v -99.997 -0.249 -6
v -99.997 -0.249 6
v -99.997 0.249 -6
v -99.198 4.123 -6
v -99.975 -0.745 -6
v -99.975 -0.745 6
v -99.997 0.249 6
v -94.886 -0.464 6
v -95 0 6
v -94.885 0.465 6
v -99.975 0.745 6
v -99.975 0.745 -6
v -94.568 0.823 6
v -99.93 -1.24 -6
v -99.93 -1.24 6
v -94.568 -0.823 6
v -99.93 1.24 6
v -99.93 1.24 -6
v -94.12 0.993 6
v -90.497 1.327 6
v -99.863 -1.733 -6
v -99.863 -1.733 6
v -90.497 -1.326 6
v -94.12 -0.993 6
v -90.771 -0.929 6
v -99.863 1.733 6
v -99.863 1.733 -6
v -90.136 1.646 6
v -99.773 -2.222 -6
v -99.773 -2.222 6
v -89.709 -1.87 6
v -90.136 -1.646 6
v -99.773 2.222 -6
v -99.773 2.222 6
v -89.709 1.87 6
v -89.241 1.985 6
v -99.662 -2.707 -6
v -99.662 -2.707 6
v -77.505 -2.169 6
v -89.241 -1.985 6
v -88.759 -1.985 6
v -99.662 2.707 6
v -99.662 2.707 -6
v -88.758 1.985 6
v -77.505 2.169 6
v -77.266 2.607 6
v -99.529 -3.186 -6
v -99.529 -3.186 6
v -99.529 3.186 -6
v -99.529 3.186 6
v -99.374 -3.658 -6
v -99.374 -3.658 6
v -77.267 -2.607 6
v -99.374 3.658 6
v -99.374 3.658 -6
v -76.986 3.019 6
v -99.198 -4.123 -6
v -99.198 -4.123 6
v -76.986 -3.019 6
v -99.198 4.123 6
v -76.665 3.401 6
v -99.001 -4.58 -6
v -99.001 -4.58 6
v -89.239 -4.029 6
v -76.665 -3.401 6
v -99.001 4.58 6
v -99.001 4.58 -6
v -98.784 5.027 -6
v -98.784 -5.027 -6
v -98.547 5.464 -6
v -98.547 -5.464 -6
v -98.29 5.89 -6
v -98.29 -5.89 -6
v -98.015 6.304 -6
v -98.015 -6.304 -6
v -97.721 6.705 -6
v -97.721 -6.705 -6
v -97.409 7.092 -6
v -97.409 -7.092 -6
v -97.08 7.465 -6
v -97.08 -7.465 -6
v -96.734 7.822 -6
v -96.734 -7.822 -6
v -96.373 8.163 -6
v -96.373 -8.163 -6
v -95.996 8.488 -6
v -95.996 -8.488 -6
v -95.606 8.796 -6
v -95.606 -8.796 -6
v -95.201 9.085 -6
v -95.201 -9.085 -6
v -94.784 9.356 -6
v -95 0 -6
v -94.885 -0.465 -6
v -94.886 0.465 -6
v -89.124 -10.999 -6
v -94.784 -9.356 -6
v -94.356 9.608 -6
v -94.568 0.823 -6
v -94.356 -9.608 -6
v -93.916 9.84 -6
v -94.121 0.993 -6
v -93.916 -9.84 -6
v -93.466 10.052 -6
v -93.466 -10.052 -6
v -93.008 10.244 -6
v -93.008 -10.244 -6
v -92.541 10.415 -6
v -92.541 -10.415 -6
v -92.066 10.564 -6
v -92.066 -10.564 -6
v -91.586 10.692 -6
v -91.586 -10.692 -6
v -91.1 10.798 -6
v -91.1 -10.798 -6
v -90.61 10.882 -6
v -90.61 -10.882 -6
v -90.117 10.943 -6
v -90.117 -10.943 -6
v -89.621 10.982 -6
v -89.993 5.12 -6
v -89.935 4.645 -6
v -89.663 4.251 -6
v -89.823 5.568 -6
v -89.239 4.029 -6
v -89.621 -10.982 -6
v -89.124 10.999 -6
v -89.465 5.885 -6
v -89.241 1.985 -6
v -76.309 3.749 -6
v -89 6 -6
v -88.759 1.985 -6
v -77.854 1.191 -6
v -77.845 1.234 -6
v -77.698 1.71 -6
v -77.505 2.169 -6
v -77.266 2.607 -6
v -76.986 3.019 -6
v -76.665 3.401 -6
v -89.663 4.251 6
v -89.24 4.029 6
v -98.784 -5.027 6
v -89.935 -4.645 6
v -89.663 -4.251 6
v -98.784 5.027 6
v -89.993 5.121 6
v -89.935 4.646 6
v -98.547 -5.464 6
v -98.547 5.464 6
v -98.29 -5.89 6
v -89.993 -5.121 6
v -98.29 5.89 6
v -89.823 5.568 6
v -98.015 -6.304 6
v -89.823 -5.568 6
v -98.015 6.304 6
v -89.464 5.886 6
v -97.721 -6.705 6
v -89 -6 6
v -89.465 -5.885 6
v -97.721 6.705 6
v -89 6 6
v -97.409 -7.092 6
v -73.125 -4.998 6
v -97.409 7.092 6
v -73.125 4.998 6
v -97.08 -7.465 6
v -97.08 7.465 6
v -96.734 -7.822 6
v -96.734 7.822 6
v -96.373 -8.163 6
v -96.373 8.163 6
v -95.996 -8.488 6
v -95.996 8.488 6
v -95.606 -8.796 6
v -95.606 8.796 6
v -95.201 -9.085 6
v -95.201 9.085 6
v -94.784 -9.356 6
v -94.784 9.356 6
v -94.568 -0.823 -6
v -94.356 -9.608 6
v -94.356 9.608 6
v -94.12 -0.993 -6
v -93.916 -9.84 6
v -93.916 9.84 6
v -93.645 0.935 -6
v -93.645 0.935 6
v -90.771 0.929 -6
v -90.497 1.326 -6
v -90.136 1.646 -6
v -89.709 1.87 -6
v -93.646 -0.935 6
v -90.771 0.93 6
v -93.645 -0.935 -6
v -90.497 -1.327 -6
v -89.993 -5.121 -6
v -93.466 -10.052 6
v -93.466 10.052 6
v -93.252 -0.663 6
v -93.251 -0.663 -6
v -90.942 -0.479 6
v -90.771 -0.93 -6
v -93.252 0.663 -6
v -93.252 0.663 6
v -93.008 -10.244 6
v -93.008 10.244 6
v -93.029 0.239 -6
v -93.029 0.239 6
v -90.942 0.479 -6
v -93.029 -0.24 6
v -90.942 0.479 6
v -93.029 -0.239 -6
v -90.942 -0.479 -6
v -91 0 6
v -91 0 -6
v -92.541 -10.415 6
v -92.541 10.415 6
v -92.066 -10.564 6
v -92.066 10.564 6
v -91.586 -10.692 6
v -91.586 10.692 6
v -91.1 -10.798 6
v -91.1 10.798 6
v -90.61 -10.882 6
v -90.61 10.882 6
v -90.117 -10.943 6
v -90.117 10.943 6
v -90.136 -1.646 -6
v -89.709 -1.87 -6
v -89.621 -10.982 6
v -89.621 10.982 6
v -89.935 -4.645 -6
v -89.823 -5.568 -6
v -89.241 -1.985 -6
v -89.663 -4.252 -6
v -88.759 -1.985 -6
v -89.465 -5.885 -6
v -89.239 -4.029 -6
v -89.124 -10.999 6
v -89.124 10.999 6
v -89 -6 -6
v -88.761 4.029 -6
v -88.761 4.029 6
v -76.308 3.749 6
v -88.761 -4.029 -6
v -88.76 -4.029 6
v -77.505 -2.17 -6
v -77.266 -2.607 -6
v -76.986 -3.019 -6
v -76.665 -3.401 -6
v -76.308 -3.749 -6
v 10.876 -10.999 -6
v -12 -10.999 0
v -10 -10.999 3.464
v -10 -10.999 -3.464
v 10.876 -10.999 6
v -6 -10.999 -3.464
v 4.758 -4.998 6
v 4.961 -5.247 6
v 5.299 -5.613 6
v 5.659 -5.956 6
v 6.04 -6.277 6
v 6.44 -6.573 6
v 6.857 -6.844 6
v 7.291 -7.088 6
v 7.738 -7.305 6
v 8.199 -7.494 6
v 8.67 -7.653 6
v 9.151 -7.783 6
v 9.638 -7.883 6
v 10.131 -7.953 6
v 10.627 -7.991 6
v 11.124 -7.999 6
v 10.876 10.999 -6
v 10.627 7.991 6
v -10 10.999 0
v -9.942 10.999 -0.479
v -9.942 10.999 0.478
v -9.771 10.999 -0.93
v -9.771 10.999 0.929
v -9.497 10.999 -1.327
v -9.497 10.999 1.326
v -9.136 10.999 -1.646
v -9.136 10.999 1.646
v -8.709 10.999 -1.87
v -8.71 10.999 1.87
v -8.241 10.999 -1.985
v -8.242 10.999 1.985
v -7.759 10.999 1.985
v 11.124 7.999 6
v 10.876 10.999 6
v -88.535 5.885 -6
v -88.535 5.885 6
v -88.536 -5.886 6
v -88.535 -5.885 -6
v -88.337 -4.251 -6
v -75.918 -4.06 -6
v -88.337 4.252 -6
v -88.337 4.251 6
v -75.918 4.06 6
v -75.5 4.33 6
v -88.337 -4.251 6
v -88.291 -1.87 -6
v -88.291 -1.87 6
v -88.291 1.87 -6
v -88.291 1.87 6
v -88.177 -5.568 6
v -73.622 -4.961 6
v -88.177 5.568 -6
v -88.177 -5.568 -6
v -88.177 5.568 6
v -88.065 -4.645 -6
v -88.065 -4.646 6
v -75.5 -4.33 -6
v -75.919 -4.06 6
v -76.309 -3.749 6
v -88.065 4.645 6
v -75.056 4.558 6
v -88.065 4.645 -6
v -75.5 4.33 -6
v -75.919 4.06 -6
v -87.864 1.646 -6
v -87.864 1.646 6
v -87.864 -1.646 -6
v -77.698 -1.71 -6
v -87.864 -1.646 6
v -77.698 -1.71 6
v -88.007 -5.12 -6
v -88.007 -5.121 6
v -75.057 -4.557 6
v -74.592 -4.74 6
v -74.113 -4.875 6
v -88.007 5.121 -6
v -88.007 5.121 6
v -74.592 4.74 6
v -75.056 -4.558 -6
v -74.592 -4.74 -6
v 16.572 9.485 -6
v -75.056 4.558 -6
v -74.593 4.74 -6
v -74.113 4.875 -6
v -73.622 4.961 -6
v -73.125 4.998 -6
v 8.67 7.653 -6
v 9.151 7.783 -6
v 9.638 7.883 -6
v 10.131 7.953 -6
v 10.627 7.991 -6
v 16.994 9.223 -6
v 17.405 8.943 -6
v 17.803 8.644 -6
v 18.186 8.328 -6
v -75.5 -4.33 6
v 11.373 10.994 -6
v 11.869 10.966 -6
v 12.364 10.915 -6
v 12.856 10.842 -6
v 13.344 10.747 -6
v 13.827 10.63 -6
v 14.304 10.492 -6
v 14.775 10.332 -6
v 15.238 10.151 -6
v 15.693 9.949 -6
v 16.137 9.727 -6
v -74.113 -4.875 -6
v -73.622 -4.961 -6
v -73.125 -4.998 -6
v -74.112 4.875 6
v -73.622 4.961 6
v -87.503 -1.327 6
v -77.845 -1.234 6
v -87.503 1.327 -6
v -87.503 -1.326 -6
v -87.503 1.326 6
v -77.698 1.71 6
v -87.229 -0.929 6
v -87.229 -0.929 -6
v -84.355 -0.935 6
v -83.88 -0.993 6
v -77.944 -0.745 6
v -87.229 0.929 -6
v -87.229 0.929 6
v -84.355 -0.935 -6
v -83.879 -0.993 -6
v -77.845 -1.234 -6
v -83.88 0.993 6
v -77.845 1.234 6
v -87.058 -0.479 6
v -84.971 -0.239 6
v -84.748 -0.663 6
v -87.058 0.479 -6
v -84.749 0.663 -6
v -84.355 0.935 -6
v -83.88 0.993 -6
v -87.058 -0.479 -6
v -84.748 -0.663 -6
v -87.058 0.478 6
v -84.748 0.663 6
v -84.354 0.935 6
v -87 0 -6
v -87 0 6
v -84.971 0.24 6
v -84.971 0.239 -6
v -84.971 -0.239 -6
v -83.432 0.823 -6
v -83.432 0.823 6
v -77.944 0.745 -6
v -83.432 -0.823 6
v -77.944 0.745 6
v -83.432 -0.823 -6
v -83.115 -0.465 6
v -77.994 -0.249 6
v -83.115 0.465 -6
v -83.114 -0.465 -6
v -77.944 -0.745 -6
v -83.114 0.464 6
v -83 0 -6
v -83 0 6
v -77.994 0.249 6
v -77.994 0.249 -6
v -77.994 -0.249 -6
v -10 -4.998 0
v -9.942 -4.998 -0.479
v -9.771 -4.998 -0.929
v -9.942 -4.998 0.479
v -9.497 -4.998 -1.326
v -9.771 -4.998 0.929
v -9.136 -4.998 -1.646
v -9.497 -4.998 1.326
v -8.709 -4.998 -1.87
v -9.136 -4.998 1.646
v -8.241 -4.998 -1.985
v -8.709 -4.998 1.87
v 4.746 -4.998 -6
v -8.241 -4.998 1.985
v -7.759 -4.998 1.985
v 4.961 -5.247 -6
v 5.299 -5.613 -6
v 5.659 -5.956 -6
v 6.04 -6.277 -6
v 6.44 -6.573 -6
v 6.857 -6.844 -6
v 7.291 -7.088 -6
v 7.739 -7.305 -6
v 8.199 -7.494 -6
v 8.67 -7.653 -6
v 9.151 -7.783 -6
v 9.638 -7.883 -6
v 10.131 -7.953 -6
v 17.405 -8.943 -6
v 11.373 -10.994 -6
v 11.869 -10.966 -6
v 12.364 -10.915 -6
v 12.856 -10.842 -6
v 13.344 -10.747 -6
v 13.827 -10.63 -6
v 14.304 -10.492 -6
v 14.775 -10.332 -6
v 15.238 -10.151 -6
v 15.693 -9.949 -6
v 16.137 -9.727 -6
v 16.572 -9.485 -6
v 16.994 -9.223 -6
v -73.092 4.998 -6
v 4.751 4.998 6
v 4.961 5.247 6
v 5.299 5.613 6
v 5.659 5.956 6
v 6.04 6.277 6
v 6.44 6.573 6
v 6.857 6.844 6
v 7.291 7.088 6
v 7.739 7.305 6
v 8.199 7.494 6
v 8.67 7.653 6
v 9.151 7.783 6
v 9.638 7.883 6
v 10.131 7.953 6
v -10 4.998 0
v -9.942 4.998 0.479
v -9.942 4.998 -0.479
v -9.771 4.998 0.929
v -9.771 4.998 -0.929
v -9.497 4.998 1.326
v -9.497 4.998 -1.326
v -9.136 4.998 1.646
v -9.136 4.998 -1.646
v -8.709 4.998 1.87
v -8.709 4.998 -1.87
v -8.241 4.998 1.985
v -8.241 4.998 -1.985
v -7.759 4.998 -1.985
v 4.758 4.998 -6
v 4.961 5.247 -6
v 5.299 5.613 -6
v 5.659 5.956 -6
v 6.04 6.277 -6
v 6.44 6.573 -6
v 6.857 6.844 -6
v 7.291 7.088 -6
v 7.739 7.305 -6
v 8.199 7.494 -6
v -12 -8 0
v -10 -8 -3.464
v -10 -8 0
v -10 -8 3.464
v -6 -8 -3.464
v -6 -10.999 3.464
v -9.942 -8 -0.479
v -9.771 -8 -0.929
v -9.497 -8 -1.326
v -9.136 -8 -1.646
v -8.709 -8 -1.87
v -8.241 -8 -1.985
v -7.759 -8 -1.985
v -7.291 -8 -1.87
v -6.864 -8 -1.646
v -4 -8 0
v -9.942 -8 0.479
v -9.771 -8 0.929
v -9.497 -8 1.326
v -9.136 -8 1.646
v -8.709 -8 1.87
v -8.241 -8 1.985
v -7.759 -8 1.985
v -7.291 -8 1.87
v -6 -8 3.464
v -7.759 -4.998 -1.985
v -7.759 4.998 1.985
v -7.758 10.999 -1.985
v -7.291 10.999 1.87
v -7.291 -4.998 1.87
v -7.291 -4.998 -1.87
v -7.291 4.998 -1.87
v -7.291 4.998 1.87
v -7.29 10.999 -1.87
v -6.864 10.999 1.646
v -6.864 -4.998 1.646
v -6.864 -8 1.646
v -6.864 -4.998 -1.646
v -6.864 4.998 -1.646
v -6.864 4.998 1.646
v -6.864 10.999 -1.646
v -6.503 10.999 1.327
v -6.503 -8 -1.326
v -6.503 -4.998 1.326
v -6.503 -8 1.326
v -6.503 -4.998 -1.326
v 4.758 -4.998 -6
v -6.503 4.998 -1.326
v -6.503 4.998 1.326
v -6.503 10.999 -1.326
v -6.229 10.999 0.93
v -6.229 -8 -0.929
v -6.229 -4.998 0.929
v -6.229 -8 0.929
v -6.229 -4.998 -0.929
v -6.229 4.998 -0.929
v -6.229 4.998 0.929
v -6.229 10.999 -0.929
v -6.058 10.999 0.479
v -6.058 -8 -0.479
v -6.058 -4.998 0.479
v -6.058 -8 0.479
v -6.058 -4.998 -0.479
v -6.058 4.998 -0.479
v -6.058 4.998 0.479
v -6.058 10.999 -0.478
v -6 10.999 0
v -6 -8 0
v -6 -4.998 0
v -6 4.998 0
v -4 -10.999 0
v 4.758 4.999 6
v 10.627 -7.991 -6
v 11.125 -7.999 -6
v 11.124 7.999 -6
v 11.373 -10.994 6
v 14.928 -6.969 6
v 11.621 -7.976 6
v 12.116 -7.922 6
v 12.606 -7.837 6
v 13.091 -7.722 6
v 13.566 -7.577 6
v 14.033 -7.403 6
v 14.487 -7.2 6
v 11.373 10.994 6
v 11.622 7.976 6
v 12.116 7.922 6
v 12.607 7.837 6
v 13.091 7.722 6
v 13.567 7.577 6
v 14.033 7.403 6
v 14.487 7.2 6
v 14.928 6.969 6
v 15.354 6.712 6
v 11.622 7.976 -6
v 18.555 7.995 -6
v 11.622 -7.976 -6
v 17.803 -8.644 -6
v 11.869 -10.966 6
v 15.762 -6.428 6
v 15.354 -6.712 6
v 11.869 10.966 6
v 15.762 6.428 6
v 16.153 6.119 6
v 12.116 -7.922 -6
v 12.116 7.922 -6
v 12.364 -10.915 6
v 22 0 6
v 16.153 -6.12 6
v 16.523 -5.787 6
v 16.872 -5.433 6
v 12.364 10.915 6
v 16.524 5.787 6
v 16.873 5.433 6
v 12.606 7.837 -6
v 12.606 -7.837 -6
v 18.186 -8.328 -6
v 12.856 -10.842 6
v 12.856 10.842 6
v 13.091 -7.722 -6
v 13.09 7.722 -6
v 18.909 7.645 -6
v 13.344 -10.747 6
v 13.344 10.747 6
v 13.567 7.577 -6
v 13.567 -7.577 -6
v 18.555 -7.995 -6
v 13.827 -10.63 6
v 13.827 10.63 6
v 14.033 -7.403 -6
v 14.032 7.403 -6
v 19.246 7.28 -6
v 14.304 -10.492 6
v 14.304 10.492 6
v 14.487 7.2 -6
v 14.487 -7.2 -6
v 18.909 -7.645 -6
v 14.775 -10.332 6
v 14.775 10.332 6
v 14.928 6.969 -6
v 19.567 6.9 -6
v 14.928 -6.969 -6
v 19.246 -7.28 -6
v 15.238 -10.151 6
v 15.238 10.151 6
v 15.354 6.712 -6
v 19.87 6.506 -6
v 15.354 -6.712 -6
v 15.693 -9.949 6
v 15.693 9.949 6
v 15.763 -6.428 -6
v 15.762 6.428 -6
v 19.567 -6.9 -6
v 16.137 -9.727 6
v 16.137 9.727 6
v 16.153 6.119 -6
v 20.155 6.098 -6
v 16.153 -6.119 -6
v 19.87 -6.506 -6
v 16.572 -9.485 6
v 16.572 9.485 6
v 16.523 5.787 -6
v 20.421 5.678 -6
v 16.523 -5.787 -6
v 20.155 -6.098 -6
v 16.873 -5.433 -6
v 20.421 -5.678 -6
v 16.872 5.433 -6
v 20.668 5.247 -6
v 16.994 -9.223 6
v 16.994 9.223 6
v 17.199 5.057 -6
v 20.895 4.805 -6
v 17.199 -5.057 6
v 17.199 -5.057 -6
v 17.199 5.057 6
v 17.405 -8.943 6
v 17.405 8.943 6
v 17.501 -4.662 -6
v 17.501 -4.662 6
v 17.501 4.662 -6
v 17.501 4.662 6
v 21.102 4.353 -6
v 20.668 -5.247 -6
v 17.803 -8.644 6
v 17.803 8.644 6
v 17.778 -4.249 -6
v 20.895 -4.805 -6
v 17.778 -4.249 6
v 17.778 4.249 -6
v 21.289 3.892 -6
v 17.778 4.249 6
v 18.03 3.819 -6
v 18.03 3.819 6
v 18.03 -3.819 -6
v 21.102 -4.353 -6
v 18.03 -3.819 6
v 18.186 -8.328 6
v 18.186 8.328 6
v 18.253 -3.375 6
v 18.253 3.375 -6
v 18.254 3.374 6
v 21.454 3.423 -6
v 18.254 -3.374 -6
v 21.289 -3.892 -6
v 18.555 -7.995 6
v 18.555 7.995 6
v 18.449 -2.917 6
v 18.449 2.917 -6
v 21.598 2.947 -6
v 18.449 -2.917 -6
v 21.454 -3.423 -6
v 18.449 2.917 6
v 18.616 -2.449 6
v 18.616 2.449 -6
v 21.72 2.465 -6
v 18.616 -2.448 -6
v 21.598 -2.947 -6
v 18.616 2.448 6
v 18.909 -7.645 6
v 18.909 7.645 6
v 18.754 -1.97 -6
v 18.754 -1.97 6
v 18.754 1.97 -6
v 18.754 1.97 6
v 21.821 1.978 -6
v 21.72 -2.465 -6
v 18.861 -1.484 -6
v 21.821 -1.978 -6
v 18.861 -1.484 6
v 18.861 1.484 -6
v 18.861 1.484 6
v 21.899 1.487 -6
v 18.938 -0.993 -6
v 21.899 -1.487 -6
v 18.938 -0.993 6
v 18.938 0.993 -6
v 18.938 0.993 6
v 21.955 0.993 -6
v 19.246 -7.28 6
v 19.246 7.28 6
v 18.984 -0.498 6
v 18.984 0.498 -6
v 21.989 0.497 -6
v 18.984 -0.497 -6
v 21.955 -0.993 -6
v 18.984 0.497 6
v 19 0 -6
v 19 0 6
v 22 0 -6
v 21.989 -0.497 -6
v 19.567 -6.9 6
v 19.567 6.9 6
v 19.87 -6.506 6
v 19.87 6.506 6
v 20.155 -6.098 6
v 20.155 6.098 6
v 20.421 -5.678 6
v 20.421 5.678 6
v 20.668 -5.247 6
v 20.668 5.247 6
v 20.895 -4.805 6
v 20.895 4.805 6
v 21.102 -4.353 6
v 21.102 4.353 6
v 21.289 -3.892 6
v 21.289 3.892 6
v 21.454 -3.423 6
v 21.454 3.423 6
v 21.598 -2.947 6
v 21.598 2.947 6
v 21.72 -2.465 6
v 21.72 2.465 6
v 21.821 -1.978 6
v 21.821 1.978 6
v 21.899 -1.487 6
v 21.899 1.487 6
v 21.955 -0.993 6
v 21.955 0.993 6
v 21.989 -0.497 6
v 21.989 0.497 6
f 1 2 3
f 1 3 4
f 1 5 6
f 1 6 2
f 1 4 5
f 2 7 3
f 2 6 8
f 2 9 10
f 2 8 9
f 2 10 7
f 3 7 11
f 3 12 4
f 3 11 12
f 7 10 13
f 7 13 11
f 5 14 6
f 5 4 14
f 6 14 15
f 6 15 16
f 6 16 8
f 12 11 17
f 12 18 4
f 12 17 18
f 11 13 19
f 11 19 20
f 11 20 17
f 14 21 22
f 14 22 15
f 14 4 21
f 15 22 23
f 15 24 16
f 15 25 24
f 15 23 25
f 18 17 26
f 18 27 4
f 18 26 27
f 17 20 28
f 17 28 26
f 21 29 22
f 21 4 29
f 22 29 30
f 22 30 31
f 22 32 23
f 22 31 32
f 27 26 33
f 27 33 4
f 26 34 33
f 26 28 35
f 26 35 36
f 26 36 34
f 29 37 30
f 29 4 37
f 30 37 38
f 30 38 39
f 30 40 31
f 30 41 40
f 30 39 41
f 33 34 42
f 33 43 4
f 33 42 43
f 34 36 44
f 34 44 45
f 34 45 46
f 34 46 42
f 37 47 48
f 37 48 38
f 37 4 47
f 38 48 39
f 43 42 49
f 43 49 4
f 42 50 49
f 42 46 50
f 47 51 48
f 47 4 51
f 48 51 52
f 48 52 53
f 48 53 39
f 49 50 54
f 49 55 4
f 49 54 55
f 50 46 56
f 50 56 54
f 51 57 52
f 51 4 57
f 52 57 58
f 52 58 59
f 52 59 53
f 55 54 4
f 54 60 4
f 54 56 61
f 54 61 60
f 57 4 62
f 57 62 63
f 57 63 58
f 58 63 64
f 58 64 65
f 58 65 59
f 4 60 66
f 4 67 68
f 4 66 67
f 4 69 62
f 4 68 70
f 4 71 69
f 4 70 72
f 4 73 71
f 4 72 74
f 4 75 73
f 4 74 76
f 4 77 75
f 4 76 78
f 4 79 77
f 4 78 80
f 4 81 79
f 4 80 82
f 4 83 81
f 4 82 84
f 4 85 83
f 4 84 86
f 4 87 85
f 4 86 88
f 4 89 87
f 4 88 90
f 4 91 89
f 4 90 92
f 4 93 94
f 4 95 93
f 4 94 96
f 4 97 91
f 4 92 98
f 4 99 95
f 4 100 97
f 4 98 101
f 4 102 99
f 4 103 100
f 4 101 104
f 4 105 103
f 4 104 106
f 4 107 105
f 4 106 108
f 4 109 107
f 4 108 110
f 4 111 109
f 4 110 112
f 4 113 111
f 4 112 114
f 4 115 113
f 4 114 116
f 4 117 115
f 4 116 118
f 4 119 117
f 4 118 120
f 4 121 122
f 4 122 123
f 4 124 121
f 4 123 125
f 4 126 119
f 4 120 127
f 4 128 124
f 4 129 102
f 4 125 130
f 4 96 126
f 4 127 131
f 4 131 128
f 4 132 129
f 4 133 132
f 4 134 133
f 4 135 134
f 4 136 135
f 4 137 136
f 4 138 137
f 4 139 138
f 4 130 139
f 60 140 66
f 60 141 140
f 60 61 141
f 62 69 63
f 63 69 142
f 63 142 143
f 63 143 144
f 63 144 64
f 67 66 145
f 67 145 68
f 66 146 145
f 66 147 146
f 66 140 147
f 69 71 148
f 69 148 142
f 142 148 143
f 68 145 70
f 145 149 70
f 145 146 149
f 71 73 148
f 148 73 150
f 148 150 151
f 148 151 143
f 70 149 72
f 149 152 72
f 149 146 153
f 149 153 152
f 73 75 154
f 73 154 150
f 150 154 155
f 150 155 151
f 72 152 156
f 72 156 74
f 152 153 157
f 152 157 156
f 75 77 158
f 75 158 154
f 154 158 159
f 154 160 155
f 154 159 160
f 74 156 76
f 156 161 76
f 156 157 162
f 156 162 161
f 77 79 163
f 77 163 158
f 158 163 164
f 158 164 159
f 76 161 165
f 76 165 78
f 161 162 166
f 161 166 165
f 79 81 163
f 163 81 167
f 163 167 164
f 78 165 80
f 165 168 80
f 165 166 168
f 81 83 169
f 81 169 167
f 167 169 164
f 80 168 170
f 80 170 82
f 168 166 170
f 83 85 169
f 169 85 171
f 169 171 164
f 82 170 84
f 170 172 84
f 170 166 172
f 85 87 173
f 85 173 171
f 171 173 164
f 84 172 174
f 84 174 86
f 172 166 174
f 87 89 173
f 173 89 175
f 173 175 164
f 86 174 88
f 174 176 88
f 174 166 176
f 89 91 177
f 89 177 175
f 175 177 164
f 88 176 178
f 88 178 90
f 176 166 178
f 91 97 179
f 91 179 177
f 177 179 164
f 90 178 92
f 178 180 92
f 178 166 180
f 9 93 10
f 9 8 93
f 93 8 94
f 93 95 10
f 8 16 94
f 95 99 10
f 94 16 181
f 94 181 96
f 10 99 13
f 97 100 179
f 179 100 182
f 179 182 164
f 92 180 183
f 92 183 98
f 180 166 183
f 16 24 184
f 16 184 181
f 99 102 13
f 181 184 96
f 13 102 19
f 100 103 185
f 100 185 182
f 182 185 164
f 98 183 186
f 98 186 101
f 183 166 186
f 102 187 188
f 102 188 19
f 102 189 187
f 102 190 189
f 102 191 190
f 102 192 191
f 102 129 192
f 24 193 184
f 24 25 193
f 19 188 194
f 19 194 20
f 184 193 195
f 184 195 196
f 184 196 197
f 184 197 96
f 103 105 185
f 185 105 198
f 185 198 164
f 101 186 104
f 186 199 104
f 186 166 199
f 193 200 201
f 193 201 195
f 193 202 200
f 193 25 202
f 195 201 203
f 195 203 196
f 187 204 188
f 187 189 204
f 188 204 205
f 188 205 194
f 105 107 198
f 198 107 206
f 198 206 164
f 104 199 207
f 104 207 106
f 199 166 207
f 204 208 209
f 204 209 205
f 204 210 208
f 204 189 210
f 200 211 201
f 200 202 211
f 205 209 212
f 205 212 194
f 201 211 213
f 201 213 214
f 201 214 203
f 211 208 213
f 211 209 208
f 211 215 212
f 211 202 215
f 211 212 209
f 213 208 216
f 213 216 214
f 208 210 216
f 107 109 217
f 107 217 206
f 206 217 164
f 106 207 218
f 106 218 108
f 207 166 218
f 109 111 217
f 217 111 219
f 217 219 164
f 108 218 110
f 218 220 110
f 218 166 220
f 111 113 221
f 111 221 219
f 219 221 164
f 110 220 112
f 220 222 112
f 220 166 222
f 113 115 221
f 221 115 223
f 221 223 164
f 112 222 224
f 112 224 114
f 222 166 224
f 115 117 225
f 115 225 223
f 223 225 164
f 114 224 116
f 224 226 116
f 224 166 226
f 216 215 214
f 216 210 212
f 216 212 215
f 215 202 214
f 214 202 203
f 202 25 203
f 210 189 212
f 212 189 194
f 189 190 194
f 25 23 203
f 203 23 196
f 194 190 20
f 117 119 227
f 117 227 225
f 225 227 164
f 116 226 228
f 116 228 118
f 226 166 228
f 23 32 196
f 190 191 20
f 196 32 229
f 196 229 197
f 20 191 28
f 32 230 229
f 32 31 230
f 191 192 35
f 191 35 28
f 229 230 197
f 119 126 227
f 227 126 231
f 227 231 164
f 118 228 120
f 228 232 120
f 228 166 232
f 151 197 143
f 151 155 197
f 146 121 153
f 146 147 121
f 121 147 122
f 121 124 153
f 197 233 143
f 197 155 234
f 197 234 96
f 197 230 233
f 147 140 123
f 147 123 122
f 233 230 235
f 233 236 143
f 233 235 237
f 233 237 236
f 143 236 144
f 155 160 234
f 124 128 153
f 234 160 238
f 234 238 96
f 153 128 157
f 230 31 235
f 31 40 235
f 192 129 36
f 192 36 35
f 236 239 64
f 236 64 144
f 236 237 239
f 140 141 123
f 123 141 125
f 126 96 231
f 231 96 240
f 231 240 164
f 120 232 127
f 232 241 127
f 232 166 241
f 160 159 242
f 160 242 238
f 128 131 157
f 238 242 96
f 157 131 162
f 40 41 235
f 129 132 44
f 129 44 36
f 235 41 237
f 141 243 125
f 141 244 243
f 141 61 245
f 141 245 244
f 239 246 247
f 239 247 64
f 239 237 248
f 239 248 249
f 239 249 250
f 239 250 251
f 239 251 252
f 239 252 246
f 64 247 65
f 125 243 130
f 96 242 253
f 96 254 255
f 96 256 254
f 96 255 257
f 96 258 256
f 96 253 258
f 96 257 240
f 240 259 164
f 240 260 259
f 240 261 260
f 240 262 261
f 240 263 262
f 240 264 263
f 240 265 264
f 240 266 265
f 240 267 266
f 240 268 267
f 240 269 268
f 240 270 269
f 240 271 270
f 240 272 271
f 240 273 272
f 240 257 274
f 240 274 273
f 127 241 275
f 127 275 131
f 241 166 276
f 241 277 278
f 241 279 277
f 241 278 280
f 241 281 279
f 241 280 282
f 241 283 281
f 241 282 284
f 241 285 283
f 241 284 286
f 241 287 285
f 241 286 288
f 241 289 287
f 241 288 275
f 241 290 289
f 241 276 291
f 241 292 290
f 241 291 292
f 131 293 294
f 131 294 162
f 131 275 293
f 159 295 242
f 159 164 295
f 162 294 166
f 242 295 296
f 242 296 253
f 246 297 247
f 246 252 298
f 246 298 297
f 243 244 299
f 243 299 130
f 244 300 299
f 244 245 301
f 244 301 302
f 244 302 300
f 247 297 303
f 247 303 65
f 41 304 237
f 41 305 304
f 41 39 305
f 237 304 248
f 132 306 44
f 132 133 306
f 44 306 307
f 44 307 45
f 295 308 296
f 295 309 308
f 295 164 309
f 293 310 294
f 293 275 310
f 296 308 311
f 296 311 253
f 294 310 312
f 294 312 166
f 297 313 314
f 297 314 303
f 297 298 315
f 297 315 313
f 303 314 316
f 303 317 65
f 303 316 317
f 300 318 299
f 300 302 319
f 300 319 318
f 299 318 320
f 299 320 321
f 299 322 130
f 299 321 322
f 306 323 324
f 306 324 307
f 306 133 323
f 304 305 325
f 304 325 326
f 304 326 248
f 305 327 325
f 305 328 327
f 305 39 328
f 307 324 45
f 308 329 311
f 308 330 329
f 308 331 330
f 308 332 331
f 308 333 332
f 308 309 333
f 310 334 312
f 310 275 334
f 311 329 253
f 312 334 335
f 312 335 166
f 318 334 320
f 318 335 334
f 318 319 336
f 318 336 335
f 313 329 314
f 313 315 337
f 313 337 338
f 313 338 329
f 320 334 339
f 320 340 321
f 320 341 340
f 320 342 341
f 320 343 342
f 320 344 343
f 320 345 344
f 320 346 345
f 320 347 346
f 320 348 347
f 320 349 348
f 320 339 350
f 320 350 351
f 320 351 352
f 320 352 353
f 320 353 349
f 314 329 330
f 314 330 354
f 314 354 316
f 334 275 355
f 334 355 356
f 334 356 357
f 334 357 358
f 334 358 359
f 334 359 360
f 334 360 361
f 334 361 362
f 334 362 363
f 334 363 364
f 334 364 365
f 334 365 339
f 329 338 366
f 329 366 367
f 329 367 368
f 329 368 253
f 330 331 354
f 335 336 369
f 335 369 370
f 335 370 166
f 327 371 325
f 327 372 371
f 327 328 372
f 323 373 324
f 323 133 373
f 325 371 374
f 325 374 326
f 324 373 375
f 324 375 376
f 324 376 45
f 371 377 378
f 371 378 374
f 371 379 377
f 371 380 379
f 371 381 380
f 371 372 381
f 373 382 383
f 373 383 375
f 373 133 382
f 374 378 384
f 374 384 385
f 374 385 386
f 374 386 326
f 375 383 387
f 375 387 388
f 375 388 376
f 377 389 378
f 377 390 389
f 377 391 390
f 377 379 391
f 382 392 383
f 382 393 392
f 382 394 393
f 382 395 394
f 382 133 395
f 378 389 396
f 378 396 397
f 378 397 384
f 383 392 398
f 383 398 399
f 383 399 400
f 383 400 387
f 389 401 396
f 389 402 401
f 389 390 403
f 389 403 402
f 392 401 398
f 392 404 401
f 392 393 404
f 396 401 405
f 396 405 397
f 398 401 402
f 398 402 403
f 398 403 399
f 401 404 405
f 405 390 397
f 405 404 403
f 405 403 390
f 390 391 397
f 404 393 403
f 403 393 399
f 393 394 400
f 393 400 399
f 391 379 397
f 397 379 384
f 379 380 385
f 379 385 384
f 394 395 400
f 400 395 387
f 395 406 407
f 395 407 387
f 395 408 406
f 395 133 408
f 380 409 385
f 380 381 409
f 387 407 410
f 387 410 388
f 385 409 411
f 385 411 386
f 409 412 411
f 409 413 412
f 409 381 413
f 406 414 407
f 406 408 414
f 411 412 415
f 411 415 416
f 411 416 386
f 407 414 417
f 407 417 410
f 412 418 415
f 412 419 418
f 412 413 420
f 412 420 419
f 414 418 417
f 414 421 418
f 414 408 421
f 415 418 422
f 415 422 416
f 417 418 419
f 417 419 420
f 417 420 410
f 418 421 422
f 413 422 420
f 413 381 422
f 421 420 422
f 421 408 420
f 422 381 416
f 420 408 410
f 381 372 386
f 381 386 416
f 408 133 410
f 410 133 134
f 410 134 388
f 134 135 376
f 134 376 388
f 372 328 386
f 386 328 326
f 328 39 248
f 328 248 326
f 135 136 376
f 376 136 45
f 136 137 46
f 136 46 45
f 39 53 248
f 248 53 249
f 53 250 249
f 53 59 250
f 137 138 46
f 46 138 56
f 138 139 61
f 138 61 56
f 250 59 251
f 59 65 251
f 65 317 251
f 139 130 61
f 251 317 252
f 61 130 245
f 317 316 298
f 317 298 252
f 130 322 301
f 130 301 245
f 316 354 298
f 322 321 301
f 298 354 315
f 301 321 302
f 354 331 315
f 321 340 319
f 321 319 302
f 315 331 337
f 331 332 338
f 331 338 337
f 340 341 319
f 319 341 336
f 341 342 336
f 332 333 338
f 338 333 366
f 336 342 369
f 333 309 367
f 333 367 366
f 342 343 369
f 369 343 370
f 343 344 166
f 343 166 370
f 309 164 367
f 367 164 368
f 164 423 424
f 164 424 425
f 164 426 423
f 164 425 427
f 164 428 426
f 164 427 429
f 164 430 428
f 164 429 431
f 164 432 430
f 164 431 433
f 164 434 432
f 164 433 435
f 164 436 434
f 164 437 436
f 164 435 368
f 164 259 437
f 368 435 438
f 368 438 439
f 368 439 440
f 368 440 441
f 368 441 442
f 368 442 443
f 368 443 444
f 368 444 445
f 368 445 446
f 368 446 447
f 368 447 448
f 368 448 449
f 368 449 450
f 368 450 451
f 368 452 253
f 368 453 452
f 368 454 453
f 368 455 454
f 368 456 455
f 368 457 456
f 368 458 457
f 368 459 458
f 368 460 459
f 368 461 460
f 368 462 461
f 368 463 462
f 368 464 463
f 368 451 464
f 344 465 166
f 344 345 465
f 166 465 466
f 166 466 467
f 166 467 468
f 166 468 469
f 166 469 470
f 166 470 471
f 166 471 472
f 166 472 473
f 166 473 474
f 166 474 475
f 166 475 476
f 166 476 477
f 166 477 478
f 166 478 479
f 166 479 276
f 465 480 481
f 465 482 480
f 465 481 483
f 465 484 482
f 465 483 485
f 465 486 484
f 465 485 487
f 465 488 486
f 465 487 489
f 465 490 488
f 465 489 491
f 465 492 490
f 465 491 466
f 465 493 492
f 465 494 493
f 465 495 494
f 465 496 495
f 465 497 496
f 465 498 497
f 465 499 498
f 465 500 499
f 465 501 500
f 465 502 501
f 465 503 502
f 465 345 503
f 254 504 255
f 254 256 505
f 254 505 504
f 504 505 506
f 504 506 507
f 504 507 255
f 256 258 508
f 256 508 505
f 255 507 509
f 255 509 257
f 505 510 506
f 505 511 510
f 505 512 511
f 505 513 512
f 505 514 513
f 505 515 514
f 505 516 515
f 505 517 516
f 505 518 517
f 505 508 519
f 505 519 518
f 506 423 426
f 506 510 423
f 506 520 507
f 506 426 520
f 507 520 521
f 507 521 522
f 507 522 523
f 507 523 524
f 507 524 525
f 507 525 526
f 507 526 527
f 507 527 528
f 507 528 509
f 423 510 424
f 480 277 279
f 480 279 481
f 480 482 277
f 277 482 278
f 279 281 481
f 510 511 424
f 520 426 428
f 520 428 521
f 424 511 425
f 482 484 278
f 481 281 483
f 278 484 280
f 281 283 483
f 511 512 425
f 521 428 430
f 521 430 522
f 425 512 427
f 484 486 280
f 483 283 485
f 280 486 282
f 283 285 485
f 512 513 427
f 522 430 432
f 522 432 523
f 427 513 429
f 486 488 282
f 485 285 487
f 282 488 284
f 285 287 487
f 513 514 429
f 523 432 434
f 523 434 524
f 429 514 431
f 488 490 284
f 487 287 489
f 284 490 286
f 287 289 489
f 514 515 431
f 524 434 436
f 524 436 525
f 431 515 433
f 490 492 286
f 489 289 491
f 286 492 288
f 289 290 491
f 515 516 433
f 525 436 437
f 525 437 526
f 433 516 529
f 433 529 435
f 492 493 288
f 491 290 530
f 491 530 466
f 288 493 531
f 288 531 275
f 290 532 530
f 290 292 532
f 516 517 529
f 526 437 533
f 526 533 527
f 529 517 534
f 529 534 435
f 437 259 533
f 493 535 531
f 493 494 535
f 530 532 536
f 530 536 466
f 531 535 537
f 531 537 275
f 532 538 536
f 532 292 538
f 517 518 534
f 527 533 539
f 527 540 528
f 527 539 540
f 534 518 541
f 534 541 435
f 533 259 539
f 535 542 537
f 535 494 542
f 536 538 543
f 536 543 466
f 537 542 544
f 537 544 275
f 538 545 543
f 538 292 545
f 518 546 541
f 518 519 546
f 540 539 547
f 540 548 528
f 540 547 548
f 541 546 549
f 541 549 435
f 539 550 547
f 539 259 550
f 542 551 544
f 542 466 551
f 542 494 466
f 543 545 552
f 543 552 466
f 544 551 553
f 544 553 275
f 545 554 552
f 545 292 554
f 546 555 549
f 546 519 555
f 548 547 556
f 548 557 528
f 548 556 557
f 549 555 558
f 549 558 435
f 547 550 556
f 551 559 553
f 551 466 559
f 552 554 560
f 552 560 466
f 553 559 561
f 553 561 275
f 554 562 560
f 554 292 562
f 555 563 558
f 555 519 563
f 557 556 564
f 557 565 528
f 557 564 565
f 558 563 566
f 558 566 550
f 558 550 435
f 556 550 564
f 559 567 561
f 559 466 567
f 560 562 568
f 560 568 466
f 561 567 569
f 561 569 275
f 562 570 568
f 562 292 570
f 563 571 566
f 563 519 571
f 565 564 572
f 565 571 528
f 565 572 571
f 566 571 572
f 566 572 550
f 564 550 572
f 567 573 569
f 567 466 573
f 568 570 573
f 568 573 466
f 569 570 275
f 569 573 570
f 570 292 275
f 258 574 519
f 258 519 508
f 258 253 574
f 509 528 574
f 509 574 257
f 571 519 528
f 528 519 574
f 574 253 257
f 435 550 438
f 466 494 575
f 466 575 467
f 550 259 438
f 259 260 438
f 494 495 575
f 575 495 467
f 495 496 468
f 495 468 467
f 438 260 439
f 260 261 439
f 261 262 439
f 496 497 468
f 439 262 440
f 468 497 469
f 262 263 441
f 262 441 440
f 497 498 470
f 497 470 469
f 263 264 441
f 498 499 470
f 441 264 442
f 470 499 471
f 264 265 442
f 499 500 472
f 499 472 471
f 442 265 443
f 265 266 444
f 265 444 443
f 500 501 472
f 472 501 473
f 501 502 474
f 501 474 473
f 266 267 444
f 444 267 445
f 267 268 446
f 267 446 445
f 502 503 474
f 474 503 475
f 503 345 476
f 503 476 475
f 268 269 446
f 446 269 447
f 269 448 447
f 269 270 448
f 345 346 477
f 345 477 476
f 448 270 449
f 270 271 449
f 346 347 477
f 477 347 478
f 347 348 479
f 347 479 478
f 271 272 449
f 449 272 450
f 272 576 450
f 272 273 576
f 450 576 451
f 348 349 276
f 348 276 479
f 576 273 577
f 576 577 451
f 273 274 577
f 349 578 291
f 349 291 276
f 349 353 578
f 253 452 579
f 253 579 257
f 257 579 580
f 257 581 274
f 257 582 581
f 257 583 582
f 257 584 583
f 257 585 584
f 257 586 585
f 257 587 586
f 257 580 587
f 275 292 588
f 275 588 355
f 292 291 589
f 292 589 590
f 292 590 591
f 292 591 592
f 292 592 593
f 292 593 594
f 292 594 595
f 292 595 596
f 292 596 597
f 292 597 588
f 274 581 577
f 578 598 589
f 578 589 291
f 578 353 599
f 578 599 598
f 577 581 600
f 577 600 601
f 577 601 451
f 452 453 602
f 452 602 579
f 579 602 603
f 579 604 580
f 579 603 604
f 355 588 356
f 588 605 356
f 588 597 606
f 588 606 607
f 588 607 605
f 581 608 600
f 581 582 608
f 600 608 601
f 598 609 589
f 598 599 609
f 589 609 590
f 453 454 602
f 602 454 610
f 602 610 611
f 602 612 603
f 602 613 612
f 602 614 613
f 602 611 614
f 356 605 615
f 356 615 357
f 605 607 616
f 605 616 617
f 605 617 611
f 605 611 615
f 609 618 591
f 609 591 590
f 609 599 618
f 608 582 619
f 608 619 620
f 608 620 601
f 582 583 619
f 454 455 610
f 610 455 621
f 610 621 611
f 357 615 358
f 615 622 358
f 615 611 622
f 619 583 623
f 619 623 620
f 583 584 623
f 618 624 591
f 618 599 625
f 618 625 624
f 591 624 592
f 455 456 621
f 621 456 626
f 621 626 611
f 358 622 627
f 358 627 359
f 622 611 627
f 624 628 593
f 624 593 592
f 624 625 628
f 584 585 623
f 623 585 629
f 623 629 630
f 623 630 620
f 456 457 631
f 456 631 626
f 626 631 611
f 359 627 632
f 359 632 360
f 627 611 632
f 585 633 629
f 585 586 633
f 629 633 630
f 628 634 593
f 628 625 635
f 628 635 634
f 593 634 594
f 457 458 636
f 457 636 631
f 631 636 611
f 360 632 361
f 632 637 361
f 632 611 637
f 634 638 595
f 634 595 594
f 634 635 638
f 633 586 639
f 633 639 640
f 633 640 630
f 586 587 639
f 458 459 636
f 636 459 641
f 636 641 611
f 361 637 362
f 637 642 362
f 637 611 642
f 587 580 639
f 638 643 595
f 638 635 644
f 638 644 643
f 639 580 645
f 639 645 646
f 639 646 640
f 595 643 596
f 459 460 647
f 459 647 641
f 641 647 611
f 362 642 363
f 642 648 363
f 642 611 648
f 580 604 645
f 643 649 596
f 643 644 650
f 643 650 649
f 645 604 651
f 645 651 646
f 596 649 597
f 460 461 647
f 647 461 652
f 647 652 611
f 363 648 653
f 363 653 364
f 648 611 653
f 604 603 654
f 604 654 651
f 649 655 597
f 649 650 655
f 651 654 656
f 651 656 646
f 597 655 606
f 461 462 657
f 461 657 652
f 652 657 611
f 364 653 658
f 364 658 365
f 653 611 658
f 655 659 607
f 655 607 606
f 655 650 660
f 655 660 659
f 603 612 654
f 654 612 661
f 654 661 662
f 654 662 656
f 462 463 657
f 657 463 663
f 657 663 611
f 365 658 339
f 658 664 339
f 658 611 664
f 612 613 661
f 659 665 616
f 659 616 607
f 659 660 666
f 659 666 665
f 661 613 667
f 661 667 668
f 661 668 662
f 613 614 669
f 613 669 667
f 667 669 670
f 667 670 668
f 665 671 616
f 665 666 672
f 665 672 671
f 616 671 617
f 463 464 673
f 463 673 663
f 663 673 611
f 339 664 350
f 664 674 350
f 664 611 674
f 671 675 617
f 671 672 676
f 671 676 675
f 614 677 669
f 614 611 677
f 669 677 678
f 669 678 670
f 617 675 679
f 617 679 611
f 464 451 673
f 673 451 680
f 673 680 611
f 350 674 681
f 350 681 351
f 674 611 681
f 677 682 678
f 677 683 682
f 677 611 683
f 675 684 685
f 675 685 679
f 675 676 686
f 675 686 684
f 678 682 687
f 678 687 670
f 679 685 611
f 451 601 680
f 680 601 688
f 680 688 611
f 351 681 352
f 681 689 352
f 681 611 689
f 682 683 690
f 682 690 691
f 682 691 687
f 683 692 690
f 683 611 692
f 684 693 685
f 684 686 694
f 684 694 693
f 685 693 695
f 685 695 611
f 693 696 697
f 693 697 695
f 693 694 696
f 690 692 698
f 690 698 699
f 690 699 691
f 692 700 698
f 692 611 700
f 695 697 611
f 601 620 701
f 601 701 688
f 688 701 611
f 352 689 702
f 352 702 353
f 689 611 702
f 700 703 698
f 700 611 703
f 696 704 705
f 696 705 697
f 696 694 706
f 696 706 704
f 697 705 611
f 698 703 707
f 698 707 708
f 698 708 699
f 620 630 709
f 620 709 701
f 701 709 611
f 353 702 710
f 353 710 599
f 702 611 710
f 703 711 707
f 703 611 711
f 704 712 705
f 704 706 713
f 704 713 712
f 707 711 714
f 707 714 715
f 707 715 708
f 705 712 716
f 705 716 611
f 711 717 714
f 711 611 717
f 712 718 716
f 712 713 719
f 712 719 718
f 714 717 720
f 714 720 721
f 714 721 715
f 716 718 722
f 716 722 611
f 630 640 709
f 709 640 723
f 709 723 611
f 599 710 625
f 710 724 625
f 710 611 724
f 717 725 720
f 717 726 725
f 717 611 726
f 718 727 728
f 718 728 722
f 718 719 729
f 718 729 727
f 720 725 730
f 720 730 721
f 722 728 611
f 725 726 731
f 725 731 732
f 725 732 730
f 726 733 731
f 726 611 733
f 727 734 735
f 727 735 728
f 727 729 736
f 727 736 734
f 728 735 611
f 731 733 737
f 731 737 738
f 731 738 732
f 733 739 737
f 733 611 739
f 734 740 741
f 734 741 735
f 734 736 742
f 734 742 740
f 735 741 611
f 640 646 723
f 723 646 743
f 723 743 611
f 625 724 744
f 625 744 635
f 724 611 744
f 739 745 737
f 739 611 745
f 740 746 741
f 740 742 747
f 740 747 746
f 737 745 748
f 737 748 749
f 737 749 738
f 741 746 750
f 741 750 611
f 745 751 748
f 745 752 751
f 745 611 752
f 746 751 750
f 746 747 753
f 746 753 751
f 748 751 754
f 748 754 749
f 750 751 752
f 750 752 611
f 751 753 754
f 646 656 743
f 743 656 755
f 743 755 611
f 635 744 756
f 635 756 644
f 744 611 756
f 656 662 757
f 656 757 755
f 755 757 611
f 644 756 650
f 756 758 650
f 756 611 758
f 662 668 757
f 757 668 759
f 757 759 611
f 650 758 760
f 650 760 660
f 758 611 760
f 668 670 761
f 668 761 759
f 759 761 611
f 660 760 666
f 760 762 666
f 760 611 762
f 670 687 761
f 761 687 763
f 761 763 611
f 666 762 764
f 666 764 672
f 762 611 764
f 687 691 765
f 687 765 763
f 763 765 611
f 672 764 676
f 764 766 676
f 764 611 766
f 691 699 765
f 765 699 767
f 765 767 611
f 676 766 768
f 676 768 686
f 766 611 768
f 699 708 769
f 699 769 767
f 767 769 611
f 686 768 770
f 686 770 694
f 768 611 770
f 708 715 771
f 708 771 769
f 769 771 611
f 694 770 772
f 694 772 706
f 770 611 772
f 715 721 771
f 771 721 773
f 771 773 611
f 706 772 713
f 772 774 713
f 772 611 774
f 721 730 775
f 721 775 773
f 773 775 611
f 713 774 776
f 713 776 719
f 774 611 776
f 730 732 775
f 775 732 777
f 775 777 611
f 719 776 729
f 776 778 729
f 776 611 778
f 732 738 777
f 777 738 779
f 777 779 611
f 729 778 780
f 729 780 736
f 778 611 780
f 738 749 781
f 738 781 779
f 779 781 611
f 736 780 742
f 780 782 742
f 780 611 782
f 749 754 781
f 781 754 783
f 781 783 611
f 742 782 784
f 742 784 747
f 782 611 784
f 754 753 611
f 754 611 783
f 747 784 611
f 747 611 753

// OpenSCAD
$fa=1/1;
$fs=0.5/1;
d_tube=16;
wall=3;
mount_depth=wall;
d_bolt=4;
d_nut=8;
bolt_offset=30;
mount_offset=100;
mount_width=12;
bissl=1/100;
difference() {
  hull() {
    translate([d_tube/2+wall,0,0])cylinder(h=mount_width, d=d_tube+2*wall,center=true);
    translate([-mount_offset+wall+d_tube/2,0,0]) rotate([0,0,0]) cylinder(h=mount_width, d=d_tube+2*wall,center=true);
  }
  translate([d_tube/2+wall,0,0])cylinder(h=mount_width+bissl, d=d_tube,center=true);
  translate([-d_tube/2,0,0]) rotate([90,0,0]) cylinder(h=d_tube+2*wall+bissl, d=d_bolt,center=true);
  translate([-d_tube/2,-d_tube/2,0]) rotate([90,0,0]) cylinder(h=d_tube+2*wall+bissl, d=d_nut,$fn=6);
  translate([-mount_offset+wall+d_tube/2,0,0]) rosette_mount_holes(depth=mount_width,center=true);
  
  hull() {
    translate([-mount_offset+wall+d_tube+d_tube/2,0,0]) cylinder(h=mount_width+bissl,d=d_tube-2*wall,center=true);
    translate([d_tube/2+wall,0,0]) cylinder(h=mount_width+bissl,d=d_tube-2*wall,center=true);
  }
}
module rosette_mount_holes(depth=10,d_circle=10, d_center=4, d_around=2, n_holes=4,bissl=1/100,center=false) {
  translate([0,0,center?0:-bissl])cylinder(h=depth+2*bissl,d=d_center,center=center);
  *translate([0,0,-bissl]) cylinder(h=h_nut+2*bissl, d=d_nut,$fn=6);
  for (i=[0:360/n_holes:360]) rotate([0,0,i])translate([d_circle/2,0,center?0:-bissl]) 
    cylinder(h=depth+2*bissl, d=d_around,center=center);
}
